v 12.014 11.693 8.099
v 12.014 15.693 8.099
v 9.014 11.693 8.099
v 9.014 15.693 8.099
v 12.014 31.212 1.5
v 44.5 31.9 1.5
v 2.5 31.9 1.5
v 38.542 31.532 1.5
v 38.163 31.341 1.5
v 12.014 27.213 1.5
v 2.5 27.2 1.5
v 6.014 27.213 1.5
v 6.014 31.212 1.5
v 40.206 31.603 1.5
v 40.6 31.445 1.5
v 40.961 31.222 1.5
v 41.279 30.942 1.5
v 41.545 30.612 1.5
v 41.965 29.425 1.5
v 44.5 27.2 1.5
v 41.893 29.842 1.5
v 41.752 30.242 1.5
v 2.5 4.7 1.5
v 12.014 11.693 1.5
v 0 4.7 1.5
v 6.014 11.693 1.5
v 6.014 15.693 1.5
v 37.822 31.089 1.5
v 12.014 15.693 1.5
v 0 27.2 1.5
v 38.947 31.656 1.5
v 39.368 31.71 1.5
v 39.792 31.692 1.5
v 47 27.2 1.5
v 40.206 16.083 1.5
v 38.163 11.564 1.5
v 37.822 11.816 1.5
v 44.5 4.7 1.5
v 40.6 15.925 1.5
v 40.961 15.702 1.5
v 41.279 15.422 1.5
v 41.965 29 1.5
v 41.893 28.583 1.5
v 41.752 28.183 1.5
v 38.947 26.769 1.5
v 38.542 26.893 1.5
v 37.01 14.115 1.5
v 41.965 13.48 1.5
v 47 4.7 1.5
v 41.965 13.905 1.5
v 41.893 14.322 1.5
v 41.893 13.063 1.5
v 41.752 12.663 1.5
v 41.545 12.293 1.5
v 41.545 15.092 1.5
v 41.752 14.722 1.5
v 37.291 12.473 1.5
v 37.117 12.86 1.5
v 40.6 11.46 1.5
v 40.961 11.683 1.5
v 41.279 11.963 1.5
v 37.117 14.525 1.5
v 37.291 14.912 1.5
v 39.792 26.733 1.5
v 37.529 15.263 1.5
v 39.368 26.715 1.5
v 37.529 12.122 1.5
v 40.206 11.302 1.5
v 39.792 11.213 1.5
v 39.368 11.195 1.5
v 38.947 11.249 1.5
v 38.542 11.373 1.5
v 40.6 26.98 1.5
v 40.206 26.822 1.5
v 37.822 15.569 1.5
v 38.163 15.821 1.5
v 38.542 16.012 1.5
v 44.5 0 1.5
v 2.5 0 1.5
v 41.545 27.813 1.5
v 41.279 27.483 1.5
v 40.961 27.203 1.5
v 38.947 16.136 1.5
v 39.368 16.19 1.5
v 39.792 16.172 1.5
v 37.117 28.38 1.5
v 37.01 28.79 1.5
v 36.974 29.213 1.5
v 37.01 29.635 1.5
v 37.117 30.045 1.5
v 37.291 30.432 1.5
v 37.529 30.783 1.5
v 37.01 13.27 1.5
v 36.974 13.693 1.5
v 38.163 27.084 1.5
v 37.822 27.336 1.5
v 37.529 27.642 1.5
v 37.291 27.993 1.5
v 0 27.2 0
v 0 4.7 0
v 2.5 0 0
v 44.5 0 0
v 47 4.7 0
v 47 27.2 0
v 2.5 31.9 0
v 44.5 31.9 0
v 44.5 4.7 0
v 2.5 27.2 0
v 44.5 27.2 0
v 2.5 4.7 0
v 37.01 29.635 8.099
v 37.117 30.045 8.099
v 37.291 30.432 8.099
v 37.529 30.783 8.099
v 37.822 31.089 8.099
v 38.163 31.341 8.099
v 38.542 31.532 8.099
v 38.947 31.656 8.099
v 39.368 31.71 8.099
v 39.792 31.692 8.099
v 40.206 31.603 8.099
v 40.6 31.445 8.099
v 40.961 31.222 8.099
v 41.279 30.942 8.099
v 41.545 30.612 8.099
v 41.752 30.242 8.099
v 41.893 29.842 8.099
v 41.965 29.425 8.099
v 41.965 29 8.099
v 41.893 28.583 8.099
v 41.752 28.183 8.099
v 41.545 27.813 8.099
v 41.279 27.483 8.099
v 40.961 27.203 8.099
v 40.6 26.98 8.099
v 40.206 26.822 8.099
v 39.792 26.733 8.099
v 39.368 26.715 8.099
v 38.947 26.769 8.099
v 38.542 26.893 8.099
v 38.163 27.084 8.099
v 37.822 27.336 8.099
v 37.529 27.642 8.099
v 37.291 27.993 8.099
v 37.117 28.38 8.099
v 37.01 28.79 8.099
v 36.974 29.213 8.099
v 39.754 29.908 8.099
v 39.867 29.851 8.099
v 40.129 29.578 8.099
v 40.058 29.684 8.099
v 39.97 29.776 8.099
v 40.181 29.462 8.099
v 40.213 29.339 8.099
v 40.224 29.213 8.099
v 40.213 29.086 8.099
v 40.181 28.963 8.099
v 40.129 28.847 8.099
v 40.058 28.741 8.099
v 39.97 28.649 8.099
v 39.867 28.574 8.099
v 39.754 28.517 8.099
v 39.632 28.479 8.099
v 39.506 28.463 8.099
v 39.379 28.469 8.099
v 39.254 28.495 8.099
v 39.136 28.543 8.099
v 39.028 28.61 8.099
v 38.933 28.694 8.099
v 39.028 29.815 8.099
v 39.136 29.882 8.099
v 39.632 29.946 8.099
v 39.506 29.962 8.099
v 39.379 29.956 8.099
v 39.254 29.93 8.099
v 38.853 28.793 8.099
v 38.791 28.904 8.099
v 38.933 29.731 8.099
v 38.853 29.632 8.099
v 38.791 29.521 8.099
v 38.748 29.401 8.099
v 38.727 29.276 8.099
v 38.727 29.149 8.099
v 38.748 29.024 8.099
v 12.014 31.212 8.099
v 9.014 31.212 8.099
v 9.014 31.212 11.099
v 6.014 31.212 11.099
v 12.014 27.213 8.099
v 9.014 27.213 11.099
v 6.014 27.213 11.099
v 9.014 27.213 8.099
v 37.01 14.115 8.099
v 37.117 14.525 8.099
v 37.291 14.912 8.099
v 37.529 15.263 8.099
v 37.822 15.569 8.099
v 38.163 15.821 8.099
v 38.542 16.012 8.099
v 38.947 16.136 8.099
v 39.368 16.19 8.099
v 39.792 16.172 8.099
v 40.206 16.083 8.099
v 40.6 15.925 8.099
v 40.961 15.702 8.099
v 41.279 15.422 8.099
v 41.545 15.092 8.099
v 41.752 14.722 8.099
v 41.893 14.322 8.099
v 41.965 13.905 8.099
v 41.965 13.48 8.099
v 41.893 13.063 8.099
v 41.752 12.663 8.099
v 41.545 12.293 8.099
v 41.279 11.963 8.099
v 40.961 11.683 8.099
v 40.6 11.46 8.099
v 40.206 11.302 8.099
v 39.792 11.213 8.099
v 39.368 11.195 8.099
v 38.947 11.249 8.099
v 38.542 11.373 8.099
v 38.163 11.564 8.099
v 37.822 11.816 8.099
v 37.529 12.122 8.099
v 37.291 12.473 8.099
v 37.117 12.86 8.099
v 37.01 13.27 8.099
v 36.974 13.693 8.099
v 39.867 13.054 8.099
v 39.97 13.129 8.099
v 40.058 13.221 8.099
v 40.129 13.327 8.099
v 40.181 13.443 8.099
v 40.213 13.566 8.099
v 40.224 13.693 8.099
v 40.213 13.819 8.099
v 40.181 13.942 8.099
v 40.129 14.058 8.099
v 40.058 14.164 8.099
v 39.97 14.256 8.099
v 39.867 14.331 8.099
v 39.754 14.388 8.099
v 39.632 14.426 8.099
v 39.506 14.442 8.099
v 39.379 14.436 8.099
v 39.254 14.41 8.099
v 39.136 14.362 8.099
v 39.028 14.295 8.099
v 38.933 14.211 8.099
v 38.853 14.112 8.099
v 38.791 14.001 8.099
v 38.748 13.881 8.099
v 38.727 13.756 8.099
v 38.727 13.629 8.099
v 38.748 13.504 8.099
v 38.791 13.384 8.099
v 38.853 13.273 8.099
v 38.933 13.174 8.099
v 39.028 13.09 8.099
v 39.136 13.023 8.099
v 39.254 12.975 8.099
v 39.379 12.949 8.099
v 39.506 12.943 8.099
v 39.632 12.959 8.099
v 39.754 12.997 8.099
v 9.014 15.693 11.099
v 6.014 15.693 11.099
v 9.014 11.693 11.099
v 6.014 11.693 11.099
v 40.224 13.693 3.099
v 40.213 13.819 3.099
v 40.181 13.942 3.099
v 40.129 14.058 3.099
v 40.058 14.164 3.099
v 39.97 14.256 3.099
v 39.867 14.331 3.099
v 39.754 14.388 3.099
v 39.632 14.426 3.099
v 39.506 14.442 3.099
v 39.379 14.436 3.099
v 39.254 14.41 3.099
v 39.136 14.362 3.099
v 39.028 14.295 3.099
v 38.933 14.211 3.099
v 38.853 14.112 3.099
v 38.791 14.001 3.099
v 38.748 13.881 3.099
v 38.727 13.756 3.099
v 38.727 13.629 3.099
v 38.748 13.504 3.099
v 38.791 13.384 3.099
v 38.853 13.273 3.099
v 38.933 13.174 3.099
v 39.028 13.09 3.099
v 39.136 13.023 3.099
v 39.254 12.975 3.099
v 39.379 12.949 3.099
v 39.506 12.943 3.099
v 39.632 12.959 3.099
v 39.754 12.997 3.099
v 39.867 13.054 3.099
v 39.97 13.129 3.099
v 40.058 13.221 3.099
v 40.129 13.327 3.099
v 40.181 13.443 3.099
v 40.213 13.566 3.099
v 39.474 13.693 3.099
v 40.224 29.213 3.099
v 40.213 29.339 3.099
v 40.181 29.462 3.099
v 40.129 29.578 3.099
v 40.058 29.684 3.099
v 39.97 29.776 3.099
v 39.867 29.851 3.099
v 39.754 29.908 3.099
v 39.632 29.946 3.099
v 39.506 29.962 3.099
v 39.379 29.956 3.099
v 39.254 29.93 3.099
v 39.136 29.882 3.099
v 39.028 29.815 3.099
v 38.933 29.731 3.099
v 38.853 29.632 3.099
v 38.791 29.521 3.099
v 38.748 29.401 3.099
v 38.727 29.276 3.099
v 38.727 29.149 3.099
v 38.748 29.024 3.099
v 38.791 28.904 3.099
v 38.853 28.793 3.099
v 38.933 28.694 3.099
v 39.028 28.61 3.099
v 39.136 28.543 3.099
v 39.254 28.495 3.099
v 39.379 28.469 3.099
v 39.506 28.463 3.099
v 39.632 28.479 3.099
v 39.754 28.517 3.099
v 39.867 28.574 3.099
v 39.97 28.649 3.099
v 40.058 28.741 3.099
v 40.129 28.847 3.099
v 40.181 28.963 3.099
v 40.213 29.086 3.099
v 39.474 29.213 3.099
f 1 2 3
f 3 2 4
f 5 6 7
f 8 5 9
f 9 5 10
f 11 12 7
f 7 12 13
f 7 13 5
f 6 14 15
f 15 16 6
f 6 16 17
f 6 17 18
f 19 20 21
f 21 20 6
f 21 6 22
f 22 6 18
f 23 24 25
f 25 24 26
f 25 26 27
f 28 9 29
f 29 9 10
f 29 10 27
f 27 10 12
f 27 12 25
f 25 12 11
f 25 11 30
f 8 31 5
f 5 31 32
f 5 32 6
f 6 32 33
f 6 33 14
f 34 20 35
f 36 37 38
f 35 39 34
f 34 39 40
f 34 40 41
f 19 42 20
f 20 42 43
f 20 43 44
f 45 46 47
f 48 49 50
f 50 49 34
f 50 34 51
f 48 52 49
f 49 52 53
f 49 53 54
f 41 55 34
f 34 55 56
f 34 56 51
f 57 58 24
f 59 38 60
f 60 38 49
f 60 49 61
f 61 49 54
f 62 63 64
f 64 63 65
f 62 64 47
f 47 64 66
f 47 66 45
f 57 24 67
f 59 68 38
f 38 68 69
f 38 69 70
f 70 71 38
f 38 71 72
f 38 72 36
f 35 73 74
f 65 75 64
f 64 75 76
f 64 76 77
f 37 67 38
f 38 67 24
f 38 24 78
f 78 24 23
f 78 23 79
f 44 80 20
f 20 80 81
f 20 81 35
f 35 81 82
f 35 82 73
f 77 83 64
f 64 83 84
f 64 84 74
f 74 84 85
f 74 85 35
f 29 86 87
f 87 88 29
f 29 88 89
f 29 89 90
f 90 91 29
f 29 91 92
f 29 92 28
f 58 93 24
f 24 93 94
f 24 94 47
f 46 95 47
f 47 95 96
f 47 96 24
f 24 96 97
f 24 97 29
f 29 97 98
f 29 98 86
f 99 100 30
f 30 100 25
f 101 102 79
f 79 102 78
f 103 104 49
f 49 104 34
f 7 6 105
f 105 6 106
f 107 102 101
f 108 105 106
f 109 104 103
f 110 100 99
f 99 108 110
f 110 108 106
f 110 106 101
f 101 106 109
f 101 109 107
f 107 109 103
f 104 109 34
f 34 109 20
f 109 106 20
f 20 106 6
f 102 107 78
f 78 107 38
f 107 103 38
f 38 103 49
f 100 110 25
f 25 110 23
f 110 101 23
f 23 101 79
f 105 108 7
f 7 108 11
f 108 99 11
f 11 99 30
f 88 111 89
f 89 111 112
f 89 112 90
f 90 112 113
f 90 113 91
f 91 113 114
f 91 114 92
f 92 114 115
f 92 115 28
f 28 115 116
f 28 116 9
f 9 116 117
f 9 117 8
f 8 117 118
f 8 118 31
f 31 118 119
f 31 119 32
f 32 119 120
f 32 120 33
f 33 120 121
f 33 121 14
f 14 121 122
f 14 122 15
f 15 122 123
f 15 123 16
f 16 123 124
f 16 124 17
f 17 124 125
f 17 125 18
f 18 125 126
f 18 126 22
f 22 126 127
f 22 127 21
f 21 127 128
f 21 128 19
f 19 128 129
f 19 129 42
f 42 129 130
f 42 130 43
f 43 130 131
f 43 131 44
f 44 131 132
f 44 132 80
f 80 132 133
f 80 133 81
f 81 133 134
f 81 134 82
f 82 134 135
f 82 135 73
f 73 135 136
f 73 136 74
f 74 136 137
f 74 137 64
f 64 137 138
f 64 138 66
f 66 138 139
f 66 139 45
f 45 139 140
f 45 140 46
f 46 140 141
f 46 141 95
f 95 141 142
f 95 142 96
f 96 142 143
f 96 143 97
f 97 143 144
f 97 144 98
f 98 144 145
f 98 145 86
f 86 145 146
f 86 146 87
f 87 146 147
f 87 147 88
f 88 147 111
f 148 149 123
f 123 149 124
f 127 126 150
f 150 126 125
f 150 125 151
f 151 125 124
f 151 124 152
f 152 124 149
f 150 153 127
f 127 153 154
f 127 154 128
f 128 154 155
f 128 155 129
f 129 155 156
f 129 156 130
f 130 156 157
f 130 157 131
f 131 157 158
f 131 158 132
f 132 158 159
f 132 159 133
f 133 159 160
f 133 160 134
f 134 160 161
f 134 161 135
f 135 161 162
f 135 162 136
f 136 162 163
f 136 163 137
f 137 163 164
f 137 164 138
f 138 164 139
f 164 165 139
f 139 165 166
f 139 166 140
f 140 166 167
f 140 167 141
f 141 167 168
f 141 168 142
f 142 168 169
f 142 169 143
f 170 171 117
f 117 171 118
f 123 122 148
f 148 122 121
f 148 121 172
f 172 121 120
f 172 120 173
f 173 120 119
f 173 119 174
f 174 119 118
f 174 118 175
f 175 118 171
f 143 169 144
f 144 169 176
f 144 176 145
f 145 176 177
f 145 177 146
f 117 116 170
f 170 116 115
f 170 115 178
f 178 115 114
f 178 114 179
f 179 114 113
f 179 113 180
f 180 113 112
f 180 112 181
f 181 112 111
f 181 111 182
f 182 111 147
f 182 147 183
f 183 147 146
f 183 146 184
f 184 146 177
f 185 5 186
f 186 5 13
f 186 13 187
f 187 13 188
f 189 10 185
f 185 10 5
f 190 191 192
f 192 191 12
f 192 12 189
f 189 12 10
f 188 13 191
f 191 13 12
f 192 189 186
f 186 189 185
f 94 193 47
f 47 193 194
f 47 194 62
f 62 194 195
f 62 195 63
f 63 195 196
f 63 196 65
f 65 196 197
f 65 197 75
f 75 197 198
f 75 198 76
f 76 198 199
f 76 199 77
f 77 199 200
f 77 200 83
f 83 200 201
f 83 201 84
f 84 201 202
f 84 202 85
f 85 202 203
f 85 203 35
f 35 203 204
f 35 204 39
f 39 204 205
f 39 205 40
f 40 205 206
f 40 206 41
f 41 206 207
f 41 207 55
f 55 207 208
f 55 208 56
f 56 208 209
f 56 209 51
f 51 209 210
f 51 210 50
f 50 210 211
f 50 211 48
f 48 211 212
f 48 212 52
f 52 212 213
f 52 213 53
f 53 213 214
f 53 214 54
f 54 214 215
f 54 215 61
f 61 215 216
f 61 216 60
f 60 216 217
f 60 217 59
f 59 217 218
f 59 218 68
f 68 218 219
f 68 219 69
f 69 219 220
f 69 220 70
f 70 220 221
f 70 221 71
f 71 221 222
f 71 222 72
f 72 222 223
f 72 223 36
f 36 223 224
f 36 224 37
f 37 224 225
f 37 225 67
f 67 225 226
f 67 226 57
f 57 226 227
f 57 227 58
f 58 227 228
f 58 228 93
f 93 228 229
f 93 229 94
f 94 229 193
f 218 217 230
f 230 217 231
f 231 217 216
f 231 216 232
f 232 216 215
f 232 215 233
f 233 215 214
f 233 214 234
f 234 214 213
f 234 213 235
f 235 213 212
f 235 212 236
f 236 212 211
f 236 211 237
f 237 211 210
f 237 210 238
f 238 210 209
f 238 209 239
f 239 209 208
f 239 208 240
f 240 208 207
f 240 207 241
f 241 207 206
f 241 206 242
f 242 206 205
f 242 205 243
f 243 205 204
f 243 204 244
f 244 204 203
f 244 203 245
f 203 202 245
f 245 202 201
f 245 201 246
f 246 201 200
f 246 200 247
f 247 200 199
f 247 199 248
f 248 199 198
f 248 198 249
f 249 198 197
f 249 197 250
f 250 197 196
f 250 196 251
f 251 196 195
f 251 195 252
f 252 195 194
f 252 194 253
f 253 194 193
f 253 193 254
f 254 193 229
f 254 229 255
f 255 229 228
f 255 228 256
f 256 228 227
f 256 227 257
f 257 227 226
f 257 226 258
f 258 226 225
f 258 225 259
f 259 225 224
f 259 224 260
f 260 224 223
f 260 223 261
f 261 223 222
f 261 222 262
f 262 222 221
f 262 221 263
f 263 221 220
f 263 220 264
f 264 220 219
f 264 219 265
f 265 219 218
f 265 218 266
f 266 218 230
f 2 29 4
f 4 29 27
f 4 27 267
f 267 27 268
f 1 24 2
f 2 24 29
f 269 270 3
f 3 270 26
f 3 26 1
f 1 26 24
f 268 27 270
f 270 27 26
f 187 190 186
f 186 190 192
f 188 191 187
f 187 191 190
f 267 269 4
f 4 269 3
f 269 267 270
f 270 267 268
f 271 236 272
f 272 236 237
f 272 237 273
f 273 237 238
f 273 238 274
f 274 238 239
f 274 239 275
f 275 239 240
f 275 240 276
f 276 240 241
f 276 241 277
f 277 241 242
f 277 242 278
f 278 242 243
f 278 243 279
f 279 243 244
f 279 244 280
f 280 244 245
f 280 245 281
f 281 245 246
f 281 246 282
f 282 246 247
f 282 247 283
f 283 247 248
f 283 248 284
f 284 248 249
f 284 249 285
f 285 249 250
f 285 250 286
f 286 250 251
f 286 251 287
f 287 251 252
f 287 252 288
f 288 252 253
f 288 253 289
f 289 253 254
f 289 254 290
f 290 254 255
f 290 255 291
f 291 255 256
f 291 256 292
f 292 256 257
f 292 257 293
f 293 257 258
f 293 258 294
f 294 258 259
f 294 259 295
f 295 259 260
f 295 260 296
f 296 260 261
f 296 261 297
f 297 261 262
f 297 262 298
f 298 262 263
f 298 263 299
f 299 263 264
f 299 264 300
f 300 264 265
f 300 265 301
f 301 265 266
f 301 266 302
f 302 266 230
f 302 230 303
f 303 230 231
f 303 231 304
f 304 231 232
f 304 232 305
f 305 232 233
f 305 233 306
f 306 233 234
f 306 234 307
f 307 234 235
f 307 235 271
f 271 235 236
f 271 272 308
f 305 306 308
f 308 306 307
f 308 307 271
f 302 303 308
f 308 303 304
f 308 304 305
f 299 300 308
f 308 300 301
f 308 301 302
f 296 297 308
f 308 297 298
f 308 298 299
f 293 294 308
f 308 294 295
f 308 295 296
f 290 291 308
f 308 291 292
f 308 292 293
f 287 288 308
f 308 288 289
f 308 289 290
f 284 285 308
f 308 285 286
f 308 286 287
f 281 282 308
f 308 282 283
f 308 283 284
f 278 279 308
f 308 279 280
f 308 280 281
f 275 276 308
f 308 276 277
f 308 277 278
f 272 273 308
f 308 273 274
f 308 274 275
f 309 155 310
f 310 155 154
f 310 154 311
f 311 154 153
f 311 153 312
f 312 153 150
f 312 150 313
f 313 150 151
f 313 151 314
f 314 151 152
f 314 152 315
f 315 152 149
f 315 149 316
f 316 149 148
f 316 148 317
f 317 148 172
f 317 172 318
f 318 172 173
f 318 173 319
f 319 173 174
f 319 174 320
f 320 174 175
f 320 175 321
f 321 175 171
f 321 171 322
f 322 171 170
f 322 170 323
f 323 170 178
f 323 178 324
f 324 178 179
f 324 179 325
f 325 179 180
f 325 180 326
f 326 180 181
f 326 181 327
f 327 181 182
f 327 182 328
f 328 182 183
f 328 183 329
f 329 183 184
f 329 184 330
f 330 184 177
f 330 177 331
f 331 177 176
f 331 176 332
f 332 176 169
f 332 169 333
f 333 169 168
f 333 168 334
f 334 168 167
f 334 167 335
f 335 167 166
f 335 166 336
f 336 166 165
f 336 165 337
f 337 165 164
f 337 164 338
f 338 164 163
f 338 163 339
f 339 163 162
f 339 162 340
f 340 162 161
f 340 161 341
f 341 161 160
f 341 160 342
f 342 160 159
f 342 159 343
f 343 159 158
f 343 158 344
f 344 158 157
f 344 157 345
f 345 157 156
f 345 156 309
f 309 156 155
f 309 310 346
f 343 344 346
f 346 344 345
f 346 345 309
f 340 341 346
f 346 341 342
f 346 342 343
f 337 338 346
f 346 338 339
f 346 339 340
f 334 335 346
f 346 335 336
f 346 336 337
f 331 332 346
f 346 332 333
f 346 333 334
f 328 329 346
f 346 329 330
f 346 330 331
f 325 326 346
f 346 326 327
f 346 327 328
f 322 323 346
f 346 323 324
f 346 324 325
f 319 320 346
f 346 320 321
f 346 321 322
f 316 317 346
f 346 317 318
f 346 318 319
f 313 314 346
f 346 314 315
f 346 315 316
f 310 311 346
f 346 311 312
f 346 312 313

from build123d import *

# Parameters (mm, degrees)
ESQUISSE1_W             = 47
ESQUISSE1_H             = 31.9
BOSS_EXTRU_1_DEPTH      = 1.5
ESQUISSE2_W             = 2.5
ESQUISSE2_H             = 4.7
ENL_V_MAT_EXTRU_1_DEPTH = 2.5
ESQUISSE3_R             = 2.5
ESQUISSE3_W             = 6
ESQUISSE3_H             = 4
BOSS_EXTRU_2_DEPTH      = 6.599064
ESQUISSE4_W             = 3
ESQUISSE4_H             = 4
BOSS_EXTRU_3_DEPTH      = 3
ESQUISSE4_3_R           = 0.75
ENL_V_MAT_EXTRU_2_DEPTH = 5


with BuildPart() as part:
    # Esquisse1 → Boss.-Extru.1 (new body)
    with BuildSketch(Plane.XY):
        with Locations((23.5, 15.95)):
            Rectangle(ESQUISSE1_W, ESQUISSE1_H)
    extrude(amount=BOSS_EXTRU_1_DEPTH)

    # Esquisse2 → Enl_v. mat.-Extru.1 (cut, through all)
    with BuildSketch(Plane.XY.offset(1.5)):
        with Locations((45.75, 29.55)):
            Rectangle(ESQUISSE2_W, ESQUISSE2_H)
        with Locations((45.75, 2.35)):
            Rectangle(ESQUISSE2_W, ESQUISSE2_H)
        with Locations((1.25, 2.35)):
            Rectangle(ESQUISSE2_W, ESQUISSE2_H)
        with Locations((1.25, 29.55)):
            Rectangle(ESQUISSE2_W, ESQUISSE2_H)
    extrude(amount=-ENL_V_MAT_EXTRU_1_DEPTH, mode=Mode.SUBTRACT)

    # Esquisse3 → Boss.-Extru.2 (add)
    with BuildSketch(Plane.XY.offset(1.5)):
        with Locations((39.474011, 29.2125)):
            Circle(ESQUISSE3_R)
        with Locations((39.474011, 13.6925)):
            Circle(ESQUISSE3_R)
        with Locations((9.014011, 29.2125)):
            Rectangle(ESQUISSE3_W, ESQUISSE3_H)
        with Locations((9.014011, 13.6925)):
            Rectangle(ESQUISSE3_W, ESQUISSE3_H)
    extrude(amount=BOSS_EXTRU_2_DEPTH)

    # Esquisse4 → Boss.-Extru.3 (add)
    with BuildSketch(Plane.XY.offset(8.099064)):
        with Locations((7.514011, 13.6925)):
            Rectangle(ESQUISSE4_W, ESQUISSE4_H)
        with Locations((7.514011, 29.2125)):
            Rectangle(ESQUISSE4_W, ESQUISSE4_H)
    extrude(amount=BOSS_EXTRU_3_DEPTH)

    # Esquisse4_3 → Enl_v. mat.-Extru.2 (cut)
    with BuildSketch(Plane.XY.offset(8.099064)):
        with Locations((39.474011, 29.2125)):
            Circle(ESQUISSE4_3_R)
        with Locations((39.474011, 13.6925)):
            Circle(ESQUISSE4_3_R)
    extrude(amount=-ENL_V_MAT_EXTRU_2_DEPTH, mode=Mode.SUBTRACT)


solid = part.part
